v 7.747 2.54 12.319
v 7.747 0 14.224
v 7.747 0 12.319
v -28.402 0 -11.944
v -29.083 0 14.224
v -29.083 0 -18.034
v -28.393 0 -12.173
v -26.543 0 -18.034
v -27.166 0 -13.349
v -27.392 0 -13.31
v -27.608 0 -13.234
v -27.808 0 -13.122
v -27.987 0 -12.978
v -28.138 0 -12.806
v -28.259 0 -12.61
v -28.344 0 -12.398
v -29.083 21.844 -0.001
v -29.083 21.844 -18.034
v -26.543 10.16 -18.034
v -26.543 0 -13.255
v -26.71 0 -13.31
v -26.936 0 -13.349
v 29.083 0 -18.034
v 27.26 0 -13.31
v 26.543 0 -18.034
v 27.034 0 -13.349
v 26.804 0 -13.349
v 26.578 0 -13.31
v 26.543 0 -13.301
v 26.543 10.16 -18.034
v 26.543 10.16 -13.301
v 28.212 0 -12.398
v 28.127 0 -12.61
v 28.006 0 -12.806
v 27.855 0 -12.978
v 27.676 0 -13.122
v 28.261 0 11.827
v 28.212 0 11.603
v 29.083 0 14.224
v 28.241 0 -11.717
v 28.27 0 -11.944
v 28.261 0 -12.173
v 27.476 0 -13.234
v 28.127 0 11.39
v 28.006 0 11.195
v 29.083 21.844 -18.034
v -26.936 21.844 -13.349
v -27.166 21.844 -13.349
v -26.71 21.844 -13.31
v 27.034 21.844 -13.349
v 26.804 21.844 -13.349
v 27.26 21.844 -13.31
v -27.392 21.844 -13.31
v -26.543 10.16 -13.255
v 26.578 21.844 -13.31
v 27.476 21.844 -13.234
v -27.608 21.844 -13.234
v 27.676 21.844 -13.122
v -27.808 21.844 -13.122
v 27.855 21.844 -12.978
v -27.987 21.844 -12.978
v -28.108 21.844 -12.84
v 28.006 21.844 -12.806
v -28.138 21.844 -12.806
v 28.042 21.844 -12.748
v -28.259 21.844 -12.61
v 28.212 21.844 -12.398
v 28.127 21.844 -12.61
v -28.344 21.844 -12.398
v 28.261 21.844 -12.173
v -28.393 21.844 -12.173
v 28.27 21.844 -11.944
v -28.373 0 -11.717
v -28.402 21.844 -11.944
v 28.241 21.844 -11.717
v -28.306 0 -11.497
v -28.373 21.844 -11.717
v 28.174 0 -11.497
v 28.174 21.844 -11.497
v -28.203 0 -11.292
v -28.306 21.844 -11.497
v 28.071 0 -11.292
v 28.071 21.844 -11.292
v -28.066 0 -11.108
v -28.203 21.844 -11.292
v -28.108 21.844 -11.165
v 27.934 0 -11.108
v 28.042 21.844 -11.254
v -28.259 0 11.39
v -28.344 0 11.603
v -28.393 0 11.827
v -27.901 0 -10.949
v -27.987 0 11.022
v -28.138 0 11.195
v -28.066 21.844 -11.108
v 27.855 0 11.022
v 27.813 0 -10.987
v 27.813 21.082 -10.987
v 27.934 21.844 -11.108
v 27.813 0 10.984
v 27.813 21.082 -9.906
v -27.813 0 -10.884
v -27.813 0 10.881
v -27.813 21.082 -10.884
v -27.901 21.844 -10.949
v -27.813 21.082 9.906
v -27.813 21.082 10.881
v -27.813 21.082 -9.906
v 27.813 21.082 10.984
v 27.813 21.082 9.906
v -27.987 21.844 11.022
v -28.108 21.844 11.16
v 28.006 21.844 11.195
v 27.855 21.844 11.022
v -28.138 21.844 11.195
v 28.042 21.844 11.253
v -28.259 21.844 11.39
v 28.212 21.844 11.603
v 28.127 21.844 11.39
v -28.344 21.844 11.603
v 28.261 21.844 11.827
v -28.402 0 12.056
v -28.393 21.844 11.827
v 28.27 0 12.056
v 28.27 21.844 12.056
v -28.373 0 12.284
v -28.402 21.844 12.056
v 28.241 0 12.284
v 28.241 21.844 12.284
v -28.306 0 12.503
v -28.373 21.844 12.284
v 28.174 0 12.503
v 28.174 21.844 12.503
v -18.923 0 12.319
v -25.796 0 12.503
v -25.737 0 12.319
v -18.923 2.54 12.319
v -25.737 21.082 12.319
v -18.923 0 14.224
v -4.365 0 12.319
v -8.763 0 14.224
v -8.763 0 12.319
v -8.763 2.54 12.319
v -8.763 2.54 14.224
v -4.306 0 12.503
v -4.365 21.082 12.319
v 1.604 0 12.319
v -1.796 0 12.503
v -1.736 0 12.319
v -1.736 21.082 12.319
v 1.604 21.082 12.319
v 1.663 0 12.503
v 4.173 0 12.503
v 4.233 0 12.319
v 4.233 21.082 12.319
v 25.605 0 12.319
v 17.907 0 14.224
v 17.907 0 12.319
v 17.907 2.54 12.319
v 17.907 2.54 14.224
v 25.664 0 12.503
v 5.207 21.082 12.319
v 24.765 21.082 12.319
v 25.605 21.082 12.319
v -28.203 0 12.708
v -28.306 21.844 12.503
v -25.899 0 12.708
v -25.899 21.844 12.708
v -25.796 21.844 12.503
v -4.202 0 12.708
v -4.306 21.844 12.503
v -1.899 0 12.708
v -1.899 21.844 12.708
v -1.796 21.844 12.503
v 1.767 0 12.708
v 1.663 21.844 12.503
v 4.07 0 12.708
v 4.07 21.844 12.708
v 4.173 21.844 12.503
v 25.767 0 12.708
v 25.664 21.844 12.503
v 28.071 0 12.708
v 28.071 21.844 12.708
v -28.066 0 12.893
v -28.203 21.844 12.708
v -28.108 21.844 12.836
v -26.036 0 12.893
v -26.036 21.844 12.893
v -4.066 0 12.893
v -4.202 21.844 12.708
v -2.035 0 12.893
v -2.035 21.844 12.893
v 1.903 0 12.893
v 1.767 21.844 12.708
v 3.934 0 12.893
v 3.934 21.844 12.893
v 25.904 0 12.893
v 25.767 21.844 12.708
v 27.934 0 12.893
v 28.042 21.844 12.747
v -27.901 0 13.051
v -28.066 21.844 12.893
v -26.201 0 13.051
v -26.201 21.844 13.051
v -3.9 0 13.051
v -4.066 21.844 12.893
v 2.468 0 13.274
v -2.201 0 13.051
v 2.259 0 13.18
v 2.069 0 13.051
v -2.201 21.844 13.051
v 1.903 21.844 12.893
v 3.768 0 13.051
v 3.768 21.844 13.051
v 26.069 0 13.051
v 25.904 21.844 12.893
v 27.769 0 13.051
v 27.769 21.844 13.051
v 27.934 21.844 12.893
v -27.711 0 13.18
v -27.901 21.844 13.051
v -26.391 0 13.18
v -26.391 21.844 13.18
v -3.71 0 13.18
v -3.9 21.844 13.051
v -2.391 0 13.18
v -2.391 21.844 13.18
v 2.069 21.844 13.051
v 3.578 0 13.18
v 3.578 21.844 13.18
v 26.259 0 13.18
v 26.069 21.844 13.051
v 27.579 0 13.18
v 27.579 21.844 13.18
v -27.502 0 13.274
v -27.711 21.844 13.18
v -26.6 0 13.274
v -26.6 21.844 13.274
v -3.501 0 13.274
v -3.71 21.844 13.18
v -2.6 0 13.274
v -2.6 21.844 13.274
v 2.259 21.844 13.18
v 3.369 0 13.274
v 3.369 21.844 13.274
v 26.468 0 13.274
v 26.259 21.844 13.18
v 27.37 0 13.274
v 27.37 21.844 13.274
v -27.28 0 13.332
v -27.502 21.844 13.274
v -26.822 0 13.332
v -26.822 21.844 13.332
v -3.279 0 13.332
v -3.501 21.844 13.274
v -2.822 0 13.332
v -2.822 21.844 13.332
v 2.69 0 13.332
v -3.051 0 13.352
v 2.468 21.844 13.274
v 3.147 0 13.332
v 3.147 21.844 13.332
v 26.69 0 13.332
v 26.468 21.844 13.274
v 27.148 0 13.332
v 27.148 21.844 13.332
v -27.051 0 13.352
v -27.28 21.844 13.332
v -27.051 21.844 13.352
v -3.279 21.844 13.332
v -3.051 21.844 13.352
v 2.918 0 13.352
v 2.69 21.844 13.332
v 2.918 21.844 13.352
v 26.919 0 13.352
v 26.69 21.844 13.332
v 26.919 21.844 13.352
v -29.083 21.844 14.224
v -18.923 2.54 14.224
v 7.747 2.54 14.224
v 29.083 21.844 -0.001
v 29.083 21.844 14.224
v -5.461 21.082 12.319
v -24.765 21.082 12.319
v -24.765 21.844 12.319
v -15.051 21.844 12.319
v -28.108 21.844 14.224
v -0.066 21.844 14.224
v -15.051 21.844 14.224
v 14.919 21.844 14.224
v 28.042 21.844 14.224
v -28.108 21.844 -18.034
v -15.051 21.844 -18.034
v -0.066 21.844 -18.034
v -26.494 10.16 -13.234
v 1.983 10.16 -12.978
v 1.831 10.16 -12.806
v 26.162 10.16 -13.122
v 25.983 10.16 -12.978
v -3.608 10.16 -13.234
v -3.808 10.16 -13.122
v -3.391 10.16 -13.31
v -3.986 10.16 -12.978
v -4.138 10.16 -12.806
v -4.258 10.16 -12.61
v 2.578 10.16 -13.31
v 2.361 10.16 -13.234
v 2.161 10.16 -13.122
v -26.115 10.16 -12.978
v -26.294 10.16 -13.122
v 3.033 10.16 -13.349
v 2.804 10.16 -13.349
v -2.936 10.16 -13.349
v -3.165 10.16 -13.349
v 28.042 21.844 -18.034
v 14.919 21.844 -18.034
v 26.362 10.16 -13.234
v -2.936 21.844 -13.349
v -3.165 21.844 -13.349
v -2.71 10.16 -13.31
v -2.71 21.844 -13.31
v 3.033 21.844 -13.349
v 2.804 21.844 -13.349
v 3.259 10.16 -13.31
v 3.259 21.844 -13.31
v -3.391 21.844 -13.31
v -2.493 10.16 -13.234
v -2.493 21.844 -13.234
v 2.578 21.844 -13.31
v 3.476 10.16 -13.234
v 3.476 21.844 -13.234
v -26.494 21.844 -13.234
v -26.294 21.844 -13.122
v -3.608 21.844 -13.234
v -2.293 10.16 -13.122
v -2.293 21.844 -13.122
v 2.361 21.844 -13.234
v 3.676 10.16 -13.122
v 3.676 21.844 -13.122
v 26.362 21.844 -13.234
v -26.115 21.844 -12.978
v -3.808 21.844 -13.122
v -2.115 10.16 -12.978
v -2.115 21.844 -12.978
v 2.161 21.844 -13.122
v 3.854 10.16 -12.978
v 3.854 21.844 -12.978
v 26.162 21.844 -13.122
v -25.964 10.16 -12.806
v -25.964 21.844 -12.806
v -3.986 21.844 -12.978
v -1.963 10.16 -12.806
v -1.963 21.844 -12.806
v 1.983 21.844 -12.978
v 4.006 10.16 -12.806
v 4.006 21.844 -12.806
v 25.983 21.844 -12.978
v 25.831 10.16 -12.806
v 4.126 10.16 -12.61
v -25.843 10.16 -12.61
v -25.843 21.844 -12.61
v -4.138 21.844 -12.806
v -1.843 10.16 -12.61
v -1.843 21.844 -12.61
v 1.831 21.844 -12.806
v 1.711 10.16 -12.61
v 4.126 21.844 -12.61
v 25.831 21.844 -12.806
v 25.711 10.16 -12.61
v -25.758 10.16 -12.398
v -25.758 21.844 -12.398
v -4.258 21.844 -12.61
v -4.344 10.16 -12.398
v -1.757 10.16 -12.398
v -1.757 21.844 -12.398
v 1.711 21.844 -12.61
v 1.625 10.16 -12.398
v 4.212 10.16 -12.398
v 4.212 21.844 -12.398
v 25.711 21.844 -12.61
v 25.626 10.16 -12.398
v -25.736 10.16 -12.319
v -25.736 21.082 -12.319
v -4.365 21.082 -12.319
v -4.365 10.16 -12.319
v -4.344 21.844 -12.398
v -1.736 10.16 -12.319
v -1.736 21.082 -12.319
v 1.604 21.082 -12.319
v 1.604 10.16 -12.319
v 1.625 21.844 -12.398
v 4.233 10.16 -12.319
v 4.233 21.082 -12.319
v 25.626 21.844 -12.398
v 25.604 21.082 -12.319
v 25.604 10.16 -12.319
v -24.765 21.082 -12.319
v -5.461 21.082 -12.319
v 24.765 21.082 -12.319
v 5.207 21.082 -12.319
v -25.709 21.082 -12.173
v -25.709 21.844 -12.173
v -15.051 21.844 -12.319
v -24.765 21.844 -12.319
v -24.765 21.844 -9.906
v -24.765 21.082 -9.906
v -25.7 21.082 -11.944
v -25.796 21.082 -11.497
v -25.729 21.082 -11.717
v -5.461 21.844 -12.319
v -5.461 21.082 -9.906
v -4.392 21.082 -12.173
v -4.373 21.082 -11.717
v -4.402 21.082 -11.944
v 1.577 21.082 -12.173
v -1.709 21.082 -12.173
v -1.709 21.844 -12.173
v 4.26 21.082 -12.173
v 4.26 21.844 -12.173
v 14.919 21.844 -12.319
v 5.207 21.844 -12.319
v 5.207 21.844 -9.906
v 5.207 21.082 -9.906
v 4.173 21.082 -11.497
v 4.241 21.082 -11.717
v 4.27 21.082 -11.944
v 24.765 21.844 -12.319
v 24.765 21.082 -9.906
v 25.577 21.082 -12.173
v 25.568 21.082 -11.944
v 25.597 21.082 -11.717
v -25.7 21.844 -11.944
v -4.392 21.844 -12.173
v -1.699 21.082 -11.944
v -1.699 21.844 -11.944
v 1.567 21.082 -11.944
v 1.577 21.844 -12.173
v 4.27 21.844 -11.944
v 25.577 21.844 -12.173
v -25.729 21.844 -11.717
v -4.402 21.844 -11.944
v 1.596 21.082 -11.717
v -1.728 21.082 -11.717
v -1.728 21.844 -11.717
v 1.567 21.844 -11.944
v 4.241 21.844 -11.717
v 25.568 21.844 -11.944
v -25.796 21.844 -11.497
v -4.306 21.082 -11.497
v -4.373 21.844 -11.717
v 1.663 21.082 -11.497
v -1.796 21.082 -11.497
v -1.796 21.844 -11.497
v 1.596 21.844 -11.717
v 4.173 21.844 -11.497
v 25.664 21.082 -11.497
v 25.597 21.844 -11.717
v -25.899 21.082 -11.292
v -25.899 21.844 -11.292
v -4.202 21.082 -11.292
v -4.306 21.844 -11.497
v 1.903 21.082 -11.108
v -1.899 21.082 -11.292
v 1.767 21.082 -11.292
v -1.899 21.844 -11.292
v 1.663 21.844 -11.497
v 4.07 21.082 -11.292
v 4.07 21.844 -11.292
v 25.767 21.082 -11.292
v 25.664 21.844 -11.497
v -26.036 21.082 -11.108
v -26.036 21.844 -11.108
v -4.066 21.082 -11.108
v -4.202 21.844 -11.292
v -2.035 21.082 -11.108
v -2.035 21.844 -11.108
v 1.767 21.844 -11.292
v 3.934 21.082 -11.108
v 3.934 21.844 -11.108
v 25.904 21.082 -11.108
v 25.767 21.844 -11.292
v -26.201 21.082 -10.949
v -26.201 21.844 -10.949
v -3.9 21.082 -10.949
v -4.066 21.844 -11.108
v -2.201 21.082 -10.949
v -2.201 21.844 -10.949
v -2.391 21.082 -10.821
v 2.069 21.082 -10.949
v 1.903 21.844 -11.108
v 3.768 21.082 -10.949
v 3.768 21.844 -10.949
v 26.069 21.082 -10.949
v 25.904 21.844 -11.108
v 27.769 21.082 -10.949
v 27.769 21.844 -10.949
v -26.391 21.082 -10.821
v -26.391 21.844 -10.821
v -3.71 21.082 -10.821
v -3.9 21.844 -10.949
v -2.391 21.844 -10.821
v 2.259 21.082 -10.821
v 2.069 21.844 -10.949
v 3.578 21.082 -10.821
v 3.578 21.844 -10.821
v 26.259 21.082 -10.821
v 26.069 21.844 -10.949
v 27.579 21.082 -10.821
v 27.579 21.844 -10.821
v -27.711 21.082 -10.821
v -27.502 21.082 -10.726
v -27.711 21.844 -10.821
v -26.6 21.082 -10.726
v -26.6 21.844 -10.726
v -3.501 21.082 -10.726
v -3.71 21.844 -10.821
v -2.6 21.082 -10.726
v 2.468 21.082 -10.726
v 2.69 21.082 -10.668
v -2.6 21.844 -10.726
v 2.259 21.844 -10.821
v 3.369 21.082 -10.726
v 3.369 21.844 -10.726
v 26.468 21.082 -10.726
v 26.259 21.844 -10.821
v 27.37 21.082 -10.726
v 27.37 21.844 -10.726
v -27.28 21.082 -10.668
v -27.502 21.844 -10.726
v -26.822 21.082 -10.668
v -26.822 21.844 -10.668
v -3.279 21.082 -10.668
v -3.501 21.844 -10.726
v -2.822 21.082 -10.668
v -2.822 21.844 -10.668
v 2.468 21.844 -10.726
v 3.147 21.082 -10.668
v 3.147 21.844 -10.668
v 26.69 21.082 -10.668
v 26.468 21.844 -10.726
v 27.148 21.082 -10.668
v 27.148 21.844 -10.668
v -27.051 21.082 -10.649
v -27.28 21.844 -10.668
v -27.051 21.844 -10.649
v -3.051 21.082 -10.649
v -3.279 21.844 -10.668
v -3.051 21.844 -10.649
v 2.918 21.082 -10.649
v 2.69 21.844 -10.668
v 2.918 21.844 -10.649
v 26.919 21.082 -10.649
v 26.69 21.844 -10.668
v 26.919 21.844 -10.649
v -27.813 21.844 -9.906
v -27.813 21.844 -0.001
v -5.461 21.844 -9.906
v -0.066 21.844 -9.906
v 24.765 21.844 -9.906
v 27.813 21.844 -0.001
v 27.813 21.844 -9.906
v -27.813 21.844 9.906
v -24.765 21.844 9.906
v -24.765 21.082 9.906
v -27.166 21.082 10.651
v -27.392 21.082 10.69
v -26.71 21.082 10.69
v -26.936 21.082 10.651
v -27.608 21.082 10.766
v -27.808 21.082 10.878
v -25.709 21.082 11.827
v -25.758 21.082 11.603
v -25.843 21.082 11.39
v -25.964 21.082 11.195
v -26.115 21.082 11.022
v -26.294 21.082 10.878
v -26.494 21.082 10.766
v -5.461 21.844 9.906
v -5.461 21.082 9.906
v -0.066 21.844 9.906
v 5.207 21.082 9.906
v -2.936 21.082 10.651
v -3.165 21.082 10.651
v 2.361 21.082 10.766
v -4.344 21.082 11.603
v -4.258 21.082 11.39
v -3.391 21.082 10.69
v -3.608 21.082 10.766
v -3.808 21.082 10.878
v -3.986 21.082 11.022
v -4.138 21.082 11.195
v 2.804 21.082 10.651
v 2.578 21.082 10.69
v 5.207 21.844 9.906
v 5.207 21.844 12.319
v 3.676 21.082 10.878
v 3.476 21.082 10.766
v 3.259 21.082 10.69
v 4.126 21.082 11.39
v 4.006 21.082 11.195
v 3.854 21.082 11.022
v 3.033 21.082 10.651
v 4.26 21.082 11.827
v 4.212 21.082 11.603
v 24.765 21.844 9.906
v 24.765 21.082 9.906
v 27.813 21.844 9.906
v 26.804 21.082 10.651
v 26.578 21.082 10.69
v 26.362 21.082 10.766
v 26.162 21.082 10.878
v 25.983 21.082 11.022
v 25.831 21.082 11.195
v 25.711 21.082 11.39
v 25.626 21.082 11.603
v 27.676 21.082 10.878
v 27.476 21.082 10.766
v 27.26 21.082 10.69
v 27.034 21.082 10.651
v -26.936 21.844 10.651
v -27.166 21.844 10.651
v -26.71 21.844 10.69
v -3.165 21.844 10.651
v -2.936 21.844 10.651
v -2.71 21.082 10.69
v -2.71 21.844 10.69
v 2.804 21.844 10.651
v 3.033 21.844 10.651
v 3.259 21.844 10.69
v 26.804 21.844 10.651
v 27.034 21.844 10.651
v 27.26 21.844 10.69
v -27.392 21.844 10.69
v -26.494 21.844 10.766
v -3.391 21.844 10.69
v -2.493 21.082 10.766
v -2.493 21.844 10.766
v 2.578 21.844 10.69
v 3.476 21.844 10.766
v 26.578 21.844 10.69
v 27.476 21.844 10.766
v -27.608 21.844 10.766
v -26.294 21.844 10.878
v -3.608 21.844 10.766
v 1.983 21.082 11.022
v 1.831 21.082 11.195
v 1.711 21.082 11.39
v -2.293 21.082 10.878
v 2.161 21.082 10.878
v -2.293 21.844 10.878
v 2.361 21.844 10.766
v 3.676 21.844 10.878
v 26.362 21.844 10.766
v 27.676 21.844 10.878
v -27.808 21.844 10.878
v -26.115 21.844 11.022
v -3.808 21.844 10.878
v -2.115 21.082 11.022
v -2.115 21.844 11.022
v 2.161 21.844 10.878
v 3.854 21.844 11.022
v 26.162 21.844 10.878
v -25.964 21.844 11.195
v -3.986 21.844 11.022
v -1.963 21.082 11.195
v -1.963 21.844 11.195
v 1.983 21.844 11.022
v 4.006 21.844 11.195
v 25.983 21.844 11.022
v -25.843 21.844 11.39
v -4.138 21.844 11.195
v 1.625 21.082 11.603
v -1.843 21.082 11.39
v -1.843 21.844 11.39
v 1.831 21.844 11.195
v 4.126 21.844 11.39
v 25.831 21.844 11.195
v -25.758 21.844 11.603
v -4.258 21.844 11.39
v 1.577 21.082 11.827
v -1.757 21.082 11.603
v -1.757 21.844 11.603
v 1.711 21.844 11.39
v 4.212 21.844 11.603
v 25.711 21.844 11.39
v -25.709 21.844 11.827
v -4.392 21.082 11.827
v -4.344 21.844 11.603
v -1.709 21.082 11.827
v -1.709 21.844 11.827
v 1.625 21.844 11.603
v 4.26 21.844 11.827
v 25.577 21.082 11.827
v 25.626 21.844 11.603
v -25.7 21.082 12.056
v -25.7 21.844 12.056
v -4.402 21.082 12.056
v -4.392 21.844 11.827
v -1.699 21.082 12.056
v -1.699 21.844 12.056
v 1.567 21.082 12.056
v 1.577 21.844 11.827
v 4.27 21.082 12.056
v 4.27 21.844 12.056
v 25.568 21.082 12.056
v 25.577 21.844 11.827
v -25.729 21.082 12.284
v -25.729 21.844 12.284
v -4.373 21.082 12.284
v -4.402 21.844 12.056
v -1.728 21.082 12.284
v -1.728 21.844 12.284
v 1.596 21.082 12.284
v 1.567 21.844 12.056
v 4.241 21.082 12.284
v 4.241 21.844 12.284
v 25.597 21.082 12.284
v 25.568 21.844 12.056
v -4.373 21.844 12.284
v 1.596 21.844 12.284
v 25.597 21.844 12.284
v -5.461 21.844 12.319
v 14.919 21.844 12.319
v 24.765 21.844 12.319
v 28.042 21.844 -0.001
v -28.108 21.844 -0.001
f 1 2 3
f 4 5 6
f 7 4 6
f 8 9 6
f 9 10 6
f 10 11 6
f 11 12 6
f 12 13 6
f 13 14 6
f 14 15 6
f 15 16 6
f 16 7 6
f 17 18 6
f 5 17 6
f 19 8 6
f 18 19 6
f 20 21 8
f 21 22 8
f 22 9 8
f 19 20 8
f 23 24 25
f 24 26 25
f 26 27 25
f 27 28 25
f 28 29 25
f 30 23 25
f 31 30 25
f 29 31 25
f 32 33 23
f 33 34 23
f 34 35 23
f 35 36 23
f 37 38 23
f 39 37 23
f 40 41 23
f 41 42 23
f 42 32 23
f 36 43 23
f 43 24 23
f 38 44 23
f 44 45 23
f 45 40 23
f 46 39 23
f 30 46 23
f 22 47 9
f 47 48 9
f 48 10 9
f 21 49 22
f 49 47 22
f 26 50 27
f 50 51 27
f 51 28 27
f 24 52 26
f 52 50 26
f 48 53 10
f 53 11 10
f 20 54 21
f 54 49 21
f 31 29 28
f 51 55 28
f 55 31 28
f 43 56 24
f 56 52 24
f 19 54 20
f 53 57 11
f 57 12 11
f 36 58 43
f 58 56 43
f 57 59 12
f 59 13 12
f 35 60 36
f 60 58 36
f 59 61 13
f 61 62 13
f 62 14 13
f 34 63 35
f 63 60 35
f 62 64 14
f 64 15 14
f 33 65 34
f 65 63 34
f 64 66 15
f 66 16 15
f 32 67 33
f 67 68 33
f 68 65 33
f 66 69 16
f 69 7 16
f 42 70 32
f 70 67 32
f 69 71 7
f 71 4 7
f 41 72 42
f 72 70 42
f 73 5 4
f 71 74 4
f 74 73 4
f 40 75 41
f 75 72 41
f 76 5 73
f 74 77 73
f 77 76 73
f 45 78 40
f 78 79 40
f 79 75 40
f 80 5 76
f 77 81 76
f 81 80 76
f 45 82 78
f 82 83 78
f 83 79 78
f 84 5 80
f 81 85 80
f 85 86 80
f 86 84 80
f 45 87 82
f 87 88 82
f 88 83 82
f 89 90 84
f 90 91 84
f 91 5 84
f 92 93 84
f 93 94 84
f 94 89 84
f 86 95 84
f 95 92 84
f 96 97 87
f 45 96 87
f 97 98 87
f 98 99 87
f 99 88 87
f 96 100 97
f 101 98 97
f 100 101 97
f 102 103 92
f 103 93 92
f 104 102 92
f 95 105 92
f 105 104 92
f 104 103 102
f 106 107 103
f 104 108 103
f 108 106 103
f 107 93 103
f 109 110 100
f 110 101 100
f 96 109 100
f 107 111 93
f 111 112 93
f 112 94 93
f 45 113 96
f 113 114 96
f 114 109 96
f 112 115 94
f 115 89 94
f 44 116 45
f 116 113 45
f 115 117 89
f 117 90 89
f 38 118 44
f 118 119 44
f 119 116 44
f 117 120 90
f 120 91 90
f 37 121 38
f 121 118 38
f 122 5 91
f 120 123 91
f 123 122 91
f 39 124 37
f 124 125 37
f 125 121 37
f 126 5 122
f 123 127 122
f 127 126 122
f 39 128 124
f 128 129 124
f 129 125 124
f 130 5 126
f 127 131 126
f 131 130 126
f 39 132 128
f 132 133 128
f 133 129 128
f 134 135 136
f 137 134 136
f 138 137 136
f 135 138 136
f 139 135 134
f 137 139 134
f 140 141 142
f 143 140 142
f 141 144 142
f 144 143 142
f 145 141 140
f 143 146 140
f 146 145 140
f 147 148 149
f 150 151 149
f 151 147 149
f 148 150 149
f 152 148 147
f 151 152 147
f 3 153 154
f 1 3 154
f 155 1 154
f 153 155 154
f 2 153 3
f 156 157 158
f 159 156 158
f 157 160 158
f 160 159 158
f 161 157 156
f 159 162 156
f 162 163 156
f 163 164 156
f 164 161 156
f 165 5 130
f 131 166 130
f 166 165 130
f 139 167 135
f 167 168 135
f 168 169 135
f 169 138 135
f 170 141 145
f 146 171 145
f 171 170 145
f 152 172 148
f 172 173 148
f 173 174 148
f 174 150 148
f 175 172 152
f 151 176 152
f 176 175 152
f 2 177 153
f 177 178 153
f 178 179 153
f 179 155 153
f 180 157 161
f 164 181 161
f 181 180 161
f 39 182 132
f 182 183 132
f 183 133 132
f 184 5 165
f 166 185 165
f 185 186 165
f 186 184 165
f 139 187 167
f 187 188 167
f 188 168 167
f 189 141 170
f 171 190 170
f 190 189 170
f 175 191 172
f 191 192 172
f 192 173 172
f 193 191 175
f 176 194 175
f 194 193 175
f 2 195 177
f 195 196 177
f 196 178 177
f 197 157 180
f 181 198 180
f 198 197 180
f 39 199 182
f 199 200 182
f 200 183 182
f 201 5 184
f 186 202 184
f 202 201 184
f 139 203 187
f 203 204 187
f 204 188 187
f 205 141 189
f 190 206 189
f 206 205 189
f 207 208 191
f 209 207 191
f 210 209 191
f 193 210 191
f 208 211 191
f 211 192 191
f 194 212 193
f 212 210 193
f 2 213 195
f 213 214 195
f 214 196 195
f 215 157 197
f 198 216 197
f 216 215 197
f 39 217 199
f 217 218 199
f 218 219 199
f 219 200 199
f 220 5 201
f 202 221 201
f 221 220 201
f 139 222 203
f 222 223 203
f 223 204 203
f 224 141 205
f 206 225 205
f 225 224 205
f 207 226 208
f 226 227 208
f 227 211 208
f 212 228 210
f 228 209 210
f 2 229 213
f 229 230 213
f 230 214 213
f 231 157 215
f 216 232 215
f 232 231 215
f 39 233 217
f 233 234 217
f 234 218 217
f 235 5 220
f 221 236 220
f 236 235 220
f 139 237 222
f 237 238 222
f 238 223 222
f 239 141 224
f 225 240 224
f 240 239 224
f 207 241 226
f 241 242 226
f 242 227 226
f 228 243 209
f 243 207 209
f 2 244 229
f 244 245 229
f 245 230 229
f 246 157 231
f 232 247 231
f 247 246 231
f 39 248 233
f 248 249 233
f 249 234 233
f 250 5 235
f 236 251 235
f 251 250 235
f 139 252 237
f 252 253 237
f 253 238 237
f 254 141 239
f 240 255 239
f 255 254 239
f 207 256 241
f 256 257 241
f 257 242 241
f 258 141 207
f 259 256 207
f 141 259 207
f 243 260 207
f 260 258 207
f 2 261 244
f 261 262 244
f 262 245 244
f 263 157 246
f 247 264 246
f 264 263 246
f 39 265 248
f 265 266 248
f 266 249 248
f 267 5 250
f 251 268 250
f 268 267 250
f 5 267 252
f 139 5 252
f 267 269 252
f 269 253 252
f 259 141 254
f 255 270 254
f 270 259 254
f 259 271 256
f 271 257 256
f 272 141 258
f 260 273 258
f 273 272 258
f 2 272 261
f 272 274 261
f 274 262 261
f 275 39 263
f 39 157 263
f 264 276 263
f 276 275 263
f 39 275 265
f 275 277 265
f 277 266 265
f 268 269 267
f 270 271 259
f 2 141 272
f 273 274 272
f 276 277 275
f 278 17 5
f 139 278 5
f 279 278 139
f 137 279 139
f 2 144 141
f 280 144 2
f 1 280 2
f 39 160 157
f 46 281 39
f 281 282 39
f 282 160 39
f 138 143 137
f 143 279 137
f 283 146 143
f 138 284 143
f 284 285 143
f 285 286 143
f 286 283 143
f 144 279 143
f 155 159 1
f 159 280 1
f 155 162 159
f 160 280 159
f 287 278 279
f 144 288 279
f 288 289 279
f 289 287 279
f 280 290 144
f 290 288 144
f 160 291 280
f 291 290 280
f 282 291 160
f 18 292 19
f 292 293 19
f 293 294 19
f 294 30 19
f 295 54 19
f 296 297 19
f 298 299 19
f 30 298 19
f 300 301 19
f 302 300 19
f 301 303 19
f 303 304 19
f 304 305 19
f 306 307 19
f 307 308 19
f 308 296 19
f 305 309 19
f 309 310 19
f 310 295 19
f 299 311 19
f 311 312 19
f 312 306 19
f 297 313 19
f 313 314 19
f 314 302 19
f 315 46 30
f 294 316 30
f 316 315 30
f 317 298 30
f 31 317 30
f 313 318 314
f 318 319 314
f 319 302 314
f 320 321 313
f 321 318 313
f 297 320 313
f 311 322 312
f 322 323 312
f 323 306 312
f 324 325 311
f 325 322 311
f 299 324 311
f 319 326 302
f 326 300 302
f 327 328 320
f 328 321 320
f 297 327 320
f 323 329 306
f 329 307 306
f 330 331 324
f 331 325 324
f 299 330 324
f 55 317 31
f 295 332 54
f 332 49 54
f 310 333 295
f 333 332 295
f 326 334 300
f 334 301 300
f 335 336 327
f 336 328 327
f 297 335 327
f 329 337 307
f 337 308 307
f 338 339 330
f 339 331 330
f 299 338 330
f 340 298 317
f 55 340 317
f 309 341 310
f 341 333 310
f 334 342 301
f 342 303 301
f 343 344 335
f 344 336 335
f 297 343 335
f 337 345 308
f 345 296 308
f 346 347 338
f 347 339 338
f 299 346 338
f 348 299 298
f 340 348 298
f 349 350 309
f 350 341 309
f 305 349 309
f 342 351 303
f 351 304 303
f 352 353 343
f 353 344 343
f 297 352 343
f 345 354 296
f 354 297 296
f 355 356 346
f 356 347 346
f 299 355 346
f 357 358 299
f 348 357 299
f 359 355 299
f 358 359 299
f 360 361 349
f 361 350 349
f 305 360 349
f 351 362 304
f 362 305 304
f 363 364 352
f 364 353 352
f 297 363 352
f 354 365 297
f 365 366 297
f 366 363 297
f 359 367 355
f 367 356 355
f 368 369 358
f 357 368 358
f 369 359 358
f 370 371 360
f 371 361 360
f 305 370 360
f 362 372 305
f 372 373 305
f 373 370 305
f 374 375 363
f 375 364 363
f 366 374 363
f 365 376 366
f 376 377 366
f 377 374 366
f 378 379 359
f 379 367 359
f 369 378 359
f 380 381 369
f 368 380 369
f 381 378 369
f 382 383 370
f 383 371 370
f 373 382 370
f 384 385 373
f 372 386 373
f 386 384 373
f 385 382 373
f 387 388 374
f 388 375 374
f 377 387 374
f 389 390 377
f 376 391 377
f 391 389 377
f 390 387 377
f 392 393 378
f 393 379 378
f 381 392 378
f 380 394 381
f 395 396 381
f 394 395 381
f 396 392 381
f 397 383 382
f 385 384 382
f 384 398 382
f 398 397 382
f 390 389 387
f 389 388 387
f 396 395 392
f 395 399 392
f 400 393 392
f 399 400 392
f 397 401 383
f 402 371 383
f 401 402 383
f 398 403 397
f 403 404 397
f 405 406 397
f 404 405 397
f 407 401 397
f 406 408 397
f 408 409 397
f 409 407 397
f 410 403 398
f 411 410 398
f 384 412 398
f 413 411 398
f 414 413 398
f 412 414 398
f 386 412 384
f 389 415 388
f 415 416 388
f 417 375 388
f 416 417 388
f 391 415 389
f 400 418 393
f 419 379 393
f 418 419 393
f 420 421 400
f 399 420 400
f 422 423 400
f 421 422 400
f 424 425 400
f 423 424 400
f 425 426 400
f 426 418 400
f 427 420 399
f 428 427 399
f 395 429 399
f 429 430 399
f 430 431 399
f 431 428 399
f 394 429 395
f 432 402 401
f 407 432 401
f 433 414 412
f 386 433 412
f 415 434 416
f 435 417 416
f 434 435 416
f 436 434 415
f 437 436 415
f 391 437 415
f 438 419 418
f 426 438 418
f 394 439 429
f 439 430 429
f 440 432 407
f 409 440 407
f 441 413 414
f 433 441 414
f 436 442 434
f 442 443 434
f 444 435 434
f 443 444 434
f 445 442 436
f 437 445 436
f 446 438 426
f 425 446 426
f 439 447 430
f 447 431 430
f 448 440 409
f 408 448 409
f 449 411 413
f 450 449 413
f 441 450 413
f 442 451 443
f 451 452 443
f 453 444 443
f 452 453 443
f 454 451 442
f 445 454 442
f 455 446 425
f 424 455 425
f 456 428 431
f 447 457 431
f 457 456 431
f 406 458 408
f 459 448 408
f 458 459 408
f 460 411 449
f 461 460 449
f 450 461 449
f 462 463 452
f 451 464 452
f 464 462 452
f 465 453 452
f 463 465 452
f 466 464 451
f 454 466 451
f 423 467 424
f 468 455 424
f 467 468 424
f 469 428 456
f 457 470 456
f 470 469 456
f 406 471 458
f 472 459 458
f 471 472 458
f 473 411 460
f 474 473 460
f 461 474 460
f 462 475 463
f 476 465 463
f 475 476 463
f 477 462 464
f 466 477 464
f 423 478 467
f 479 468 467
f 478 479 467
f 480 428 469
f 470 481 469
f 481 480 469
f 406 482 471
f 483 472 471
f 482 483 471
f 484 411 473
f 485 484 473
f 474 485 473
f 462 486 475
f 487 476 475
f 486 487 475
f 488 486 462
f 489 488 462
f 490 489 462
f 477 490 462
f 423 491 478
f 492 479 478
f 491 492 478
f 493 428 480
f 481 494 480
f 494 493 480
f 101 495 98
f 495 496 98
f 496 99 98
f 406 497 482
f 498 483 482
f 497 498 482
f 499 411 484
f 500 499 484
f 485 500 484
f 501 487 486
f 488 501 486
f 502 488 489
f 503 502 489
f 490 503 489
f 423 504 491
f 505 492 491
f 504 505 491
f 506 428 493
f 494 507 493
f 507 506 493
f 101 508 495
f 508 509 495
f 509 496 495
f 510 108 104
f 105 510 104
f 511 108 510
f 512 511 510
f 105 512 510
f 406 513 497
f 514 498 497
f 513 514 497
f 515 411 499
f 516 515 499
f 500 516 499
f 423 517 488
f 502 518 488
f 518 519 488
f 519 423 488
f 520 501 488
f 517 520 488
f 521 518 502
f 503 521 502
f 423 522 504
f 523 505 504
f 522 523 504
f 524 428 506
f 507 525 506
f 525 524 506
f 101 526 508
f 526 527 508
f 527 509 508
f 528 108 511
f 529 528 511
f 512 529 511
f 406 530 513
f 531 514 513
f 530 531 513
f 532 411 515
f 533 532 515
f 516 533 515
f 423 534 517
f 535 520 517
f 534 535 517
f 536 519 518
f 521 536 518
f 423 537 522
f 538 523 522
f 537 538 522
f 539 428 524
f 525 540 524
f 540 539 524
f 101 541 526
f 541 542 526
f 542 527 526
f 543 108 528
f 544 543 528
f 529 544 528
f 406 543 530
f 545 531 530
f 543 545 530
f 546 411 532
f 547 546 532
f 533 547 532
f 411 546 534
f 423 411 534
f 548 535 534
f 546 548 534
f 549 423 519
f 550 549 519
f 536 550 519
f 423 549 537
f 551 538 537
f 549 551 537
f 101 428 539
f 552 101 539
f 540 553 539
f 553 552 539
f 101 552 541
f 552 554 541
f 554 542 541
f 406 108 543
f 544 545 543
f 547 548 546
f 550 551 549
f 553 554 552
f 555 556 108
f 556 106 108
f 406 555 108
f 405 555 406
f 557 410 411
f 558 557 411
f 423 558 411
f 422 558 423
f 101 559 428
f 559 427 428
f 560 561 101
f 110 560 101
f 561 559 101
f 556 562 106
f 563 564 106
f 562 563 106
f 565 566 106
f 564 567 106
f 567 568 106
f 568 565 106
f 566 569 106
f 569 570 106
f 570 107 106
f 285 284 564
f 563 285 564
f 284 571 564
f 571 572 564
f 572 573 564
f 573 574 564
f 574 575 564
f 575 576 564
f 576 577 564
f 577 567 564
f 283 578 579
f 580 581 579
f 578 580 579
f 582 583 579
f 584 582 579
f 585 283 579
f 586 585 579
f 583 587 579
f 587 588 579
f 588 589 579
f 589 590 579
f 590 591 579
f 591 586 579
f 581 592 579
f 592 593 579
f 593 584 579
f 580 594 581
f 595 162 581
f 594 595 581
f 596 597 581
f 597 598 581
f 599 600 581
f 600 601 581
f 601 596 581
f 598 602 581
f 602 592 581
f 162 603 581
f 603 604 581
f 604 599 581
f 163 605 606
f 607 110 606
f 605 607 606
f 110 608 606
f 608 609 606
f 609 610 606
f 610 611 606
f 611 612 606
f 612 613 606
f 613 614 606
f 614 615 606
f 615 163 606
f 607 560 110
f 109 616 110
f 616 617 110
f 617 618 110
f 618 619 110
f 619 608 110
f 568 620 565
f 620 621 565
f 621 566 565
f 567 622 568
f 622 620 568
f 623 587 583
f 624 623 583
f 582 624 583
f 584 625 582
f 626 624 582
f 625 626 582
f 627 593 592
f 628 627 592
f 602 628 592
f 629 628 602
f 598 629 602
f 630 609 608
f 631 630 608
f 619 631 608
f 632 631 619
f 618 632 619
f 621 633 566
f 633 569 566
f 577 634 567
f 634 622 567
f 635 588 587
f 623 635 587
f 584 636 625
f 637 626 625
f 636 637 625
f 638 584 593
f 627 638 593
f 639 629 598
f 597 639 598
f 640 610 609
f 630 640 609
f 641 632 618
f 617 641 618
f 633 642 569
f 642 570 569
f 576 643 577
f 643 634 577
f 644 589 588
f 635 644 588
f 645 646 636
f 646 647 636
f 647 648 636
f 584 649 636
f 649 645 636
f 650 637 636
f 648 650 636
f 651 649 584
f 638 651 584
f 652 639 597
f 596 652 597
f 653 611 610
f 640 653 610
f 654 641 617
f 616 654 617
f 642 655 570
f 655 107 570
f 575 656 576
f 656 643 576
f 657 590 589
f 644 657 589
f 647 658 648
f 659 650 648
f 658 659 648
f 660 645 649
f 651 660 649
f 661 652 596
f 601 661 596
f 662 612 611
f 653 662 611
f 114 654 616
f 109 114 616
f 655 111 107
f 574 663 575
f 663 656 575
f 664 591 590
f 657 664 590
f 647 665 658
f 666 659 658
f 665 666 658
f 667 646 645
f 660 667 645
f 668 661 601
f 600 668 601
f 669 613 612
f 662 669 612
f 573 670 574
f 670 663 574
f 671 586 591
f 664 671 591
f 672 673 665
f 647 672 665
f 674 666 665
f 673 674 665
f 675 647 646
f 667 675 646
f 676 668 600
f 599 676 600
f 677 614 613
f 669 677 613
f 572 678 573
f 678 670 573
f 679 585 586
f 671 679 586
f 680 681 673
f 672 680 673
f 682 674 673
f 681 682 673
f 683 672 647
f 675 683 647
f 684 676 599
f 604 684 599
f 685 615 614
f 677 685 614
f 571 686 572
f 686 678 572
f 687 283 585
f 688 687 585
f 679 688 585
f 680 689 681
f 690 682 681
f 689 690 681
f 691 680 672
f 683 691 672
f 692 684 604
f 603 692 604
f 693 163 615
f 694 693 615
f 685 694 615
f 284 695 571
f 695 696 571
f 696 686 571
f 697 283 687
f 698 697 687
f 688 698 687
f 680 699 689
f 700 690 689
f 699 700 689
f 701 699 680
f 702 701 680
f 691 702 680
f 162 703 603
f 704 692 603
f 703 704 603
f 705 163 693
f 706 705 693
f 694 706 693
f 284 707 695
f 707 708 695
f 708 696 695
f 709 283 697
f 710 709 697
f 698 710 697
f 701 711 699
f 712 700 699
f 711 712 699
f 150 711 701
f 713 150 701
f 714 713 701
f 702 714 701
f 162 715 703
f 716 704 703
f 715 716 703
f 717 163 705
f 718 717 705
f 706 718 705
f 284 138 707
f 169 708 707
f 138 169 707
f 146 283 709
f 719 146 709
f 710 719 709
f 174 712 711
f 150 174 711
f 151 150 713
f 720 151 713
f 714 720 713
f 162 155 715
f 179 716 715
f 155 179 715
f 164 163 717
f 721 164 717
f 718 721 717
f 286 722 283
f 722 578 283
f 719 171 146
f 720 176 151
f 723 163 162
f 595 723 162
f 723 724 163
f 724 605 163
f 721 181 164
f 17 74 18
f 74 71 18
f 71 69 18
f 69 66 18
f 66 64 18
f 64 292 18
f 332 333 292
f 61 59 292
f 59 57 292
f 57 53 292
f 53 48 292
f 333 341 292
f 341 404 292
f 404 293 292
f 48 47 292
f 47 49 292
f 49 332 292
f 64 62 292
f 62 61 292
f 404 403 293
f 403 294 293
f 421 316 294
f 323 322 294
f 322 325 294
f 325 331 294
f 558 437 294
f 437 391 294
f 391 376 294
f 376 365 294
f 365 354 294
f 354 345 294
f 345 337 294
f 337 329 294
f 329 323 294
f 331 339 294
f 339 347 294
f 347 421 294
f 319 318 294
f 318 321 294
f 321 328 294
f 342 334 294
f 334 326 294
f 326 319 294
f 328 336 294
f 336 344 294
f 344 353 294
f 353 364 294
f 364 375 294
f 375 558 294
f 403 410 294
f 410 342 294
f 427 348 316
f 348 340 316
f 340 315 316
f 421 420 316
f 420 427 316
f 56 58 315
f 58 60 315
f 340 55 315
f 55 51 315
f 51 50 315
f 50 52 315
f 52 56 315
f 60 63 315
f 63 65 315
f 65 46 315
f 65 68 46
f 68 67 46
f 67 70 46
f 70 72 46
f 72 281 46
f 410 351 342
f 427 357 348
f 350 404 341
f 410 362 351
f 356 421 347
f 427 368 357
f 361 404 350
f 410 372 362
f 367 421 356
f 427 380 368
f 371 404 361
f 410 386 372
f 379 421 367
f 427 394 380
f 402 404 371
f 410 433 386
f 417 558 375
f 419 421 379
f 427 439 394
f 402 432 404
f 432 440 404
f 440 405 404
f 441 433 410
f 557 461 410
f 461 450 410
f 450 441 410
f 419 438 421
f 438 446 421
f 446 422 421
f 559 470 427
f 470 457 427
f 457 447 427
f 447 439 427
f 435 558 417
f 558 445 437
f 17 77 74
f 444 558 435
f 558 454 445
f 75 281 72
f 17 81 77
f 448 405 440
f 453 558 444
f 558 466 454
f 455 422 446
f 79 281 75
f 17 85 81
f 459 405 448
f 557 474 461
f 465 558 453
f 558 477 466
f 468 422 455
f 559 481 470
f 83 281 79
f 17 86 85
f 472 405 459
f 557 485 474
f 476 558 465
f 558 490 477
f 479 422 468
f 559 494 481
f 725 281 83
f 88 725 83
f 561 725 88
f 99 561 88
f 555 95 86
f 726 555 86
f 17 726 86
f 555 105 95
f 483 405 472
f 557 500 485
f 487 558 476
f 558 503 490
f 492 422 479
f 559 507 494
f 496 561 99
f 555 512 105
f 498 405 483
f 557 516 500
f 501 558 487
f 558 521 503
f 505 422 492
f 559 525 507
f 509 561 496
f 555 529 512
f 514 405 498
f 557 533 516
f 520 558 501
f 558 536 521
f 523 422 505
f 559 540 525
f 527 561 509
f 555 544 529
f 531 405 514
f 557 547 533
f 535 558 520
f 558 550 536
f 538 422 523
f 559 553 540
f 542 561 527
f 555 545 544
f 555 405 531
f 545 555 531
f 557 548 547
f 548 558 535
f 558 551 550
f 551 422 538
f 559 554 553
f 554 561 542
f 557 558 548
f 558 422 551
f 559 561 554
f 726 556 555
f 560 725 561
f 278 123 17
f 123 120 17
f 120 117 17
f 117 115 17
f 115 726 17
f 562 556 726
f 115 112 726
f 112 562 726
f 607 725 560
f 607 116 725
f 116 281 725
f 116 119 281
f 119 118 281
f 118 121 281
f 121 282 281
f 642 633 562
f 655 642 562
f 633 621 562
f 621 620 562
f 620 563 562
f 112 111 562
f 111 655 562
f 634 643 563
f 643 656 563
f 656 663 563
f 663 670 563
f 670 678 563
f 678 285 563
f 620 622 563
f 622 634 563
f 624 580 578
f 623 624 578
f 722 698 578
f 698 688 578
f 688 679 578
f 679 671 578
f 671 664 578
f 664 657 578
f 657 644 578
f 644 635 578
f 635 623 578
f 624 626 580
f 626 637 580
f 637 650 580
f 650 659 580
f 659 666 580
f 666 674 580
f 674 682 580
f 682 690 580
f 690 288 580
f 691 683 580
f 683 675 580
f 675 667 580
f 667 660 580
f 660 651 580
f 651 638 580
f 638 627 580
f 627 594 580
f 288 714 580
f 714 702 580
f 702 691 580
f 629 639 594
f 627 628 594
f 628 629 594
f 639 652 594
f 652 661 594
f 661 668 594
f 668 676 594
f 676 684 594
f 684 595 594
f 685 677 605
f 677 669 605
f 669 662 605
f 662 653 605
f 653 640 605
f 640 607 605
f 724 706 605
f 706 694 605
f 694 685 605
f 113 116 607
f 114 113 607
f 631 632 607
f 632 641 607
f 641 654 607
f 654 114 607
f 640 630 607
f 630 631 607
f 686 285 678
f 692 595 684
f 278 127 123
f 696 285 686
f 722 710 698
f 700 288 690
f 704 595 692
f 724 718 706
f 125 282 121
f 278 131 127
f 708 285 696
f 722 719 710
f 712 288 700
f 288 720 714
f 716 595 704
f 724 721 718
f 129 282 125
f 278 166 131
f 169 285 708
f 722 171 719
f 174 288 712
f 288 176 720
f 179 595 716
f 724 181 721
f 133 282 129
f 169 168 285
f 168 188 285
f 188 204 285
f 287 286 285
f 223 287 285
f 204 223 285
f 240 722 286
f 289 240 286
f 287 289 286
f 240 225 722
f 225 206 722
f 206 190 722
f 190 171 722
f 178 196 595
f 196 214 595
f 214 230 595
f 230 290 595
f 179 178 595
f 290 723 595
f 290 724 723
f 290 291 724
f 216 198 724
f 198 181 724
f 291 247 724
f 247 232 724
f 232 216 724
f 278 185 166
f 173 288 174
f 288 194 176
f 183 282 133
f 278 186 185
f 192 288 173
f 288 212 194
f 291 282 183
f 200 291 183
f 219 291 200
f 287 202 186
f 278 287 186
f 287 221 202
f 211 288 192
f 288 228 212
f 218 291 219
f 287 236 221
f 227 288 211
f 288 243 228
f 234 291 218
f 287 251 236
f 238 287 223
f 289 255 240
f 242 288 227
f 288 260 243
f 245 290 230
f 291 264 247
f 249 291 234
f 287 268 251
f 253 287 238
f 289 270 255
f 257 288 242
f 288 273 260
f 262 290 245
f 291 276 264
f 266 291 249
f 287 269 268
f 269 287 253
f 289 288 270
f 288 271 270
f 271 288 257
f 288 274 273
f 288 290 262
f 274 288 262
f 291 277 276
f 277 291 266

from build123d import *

# Parameters (mm, degrees)
SKETCH1_W             = 58.166
SKETCH1_H             = 28.448
BOSS_EXTRUDE1_DEPTH   = 21.844
SKETCH2_W             = 55.626
SKETCH2_H             = 24.638
CUT_EXTRUDE1_DEPTH    = 40.055132838
SKETCH3_W             = 3.048
SKETCH3_H             = 2.413
SKETCH3_W_2           = 10.668
BOSS_EXTRUDE2_DEPTH   = 0.762
F_2_CLEARANCE_HOLE1_D = 2.7051
CUT_EXTRUDE2_REACH    = 48.177
SKETCH6_W             = 10.16
SKETCH6_H             = 2.54
SKETCH7_W             = 58.166
SKETCH7_H             = 21.844
BOSS_EXTRUDE3_DEPTH   = 3.81
CUT_EXTRUDE3_REACH    = 50.616
SKETCH8_W             = 53.086
SKETCH8_H             = 10.16


with BuildPart() as part:
    # Sketch1 → Boss-Extrude1 (new body)
    with BuildSketch(Plane(origin=(0, 0, 0), x_dir=(1, 0, 0), z_dir=(0, 1, 0))):
        Rectangle(SKETCH1_W, SKETCH1_H)
    extrude(amount=BOSS_EXTRUDE1_DEPTH)

    # Sketch2 → Cut-Extrude1 (cut, through all)
    with BuildSketch(Plane(origin=(0, 21.844, 0), x_dir=(1, 0, 0), z_dir=(0, 1, 0))):
        Rectangle(SKETCH2_W, SKETCH2_H)
    extrude(amount=-CUT_EXTRUDE1_DEPTH, mode=Mode.SUBTRACT)

    # Sketch3 → Boss-Extrude2 (add)
    with BuildSketch(Plane(origin=(0, 21.844, 0), x_dir=(1, 0, 0), z_dir=(0, 1, 0))):
        with Locations((-26.289, 11.1125)):
            Rectangle(SKETCH3_W, SKETCH3_H)
        with Locations((-26.289, -11.1125)):
            Rectangle(SKETCH3_W, SKETCH3_H)
        with Locations((26.289, 11.1125)):
            Rectangle(SKETCH3_W, SKETCH3_H)
        with Locations((26.289, -11.1125)):
            Rectangle(SKETCH3_W, SKETCH3_H)
        with Locations((-0.127, 11.1125)):
            Rectangle(SKETCH3_W_2, SKETCH3_H)
        with Locations((-0.127, -11.1125)):
            Rectangle(SKETCH3_W_2, SKETCH3_H)
    extrude(amount=-BOSS_EXTRUDE2_DEPTH)

    # #2 Clearance Hole1 (through all)
    with Locations(Plane(origin=(0, 21.844, 0), x_dir=(1, 0, 0), z_dir=(0, 1, 0))):
        with Locations((-27.051, 12.0015), (-3.05054, 12.0015), (-3.05054, -11.99896), (-27.051, -11.99896), (2.91846, -11.99896), (26.91892, -11.99896), (26.91892, 12.0015), (2.91846, 12.0015)):
            Hole(F_2_CLEARANCE_HOLE1_D / 2)

    # Sketch6 → Cut-Extrude2 (cut, up to next)
    with BuildSketch(Plane.XY.offset(14.224), mode=Mode.PRIVATE) as cut_extrude2_sk1:
        with Locations((-13.843, 1.27)):
            Rectangle(SKETCH6_W, SKETCH6_H)
    cut_extrude2_tool1 = extrude(cut_extrude2_sk1.sketch, amount=-CUT_EXTRUDE2_REACH, mode=Mode.PRIVATE) & part.part
    # Sketch6 → Cut-Extrude2 (cut, up to next)
    with BuildSketch(Plane.XY.offset(14.224), mode=Mode.PRIVATE) as cut_extrude2_sk2:
        with Locations((12.827, 1.27)):
            Rectangle(SKETCH6_W, SKETCH6_H)
    cut_extrude2_tool2 = extrude(cut_extrude2_sk2.sketch, amount=-CUT_EXTRUDE2_REACH, mode=Mode.PRIVATE) & part.part
    add(cut_extrude2_tool1.solids().sort_by_distance((-13.843, 1.27, 14.224))[0], mode=Mode.SUBTRACT)
    add(cut_extrude2_tool2.solids().sort_by_distance((12.827, 1.27, 14.224))[0], mode=Mode.SUBTRACT)

    # Sketch7 → Boss-Extrude3 (add)
    with BuildSketch(Plane(origin=(0, 0, -14.224), x_dir=(-1, 0, 0), z_dir=(0, 0, -1))):
        with Locations((0, 10.922)):
            Rectangle(SKETCH7_W, SKETCH7_H)
    extrude(amount=BOSS_EXTRUDE3_DEPTH)

    # Sketch8 → Cut-Extrude3 (cut, up to next)
    with BuildSketch(Plane(origin=(0, 0, -18.034), x_dir=(-1, 0, 0), z_dir=(0, 0, -1)), mode=Mode.PRIVATE) as cut_extrude3_sk1:
        with Locations((0, 5.08)):
            Rectangle(SKETCH8_W, SKETCH8_H)
    cut_extrude3_tool1 = extrude(cut_extrude3_sk1.sketch, amount=-CUT_EXTRUDE3_REACH, mode=Mode.PRIVATE) & part.part
    add(cut_extrude3_tool1.solids().sort_by_distance((0, 5.08, -18.034))[0], mode=Mode.SUBTRACT)


solid = part.part
